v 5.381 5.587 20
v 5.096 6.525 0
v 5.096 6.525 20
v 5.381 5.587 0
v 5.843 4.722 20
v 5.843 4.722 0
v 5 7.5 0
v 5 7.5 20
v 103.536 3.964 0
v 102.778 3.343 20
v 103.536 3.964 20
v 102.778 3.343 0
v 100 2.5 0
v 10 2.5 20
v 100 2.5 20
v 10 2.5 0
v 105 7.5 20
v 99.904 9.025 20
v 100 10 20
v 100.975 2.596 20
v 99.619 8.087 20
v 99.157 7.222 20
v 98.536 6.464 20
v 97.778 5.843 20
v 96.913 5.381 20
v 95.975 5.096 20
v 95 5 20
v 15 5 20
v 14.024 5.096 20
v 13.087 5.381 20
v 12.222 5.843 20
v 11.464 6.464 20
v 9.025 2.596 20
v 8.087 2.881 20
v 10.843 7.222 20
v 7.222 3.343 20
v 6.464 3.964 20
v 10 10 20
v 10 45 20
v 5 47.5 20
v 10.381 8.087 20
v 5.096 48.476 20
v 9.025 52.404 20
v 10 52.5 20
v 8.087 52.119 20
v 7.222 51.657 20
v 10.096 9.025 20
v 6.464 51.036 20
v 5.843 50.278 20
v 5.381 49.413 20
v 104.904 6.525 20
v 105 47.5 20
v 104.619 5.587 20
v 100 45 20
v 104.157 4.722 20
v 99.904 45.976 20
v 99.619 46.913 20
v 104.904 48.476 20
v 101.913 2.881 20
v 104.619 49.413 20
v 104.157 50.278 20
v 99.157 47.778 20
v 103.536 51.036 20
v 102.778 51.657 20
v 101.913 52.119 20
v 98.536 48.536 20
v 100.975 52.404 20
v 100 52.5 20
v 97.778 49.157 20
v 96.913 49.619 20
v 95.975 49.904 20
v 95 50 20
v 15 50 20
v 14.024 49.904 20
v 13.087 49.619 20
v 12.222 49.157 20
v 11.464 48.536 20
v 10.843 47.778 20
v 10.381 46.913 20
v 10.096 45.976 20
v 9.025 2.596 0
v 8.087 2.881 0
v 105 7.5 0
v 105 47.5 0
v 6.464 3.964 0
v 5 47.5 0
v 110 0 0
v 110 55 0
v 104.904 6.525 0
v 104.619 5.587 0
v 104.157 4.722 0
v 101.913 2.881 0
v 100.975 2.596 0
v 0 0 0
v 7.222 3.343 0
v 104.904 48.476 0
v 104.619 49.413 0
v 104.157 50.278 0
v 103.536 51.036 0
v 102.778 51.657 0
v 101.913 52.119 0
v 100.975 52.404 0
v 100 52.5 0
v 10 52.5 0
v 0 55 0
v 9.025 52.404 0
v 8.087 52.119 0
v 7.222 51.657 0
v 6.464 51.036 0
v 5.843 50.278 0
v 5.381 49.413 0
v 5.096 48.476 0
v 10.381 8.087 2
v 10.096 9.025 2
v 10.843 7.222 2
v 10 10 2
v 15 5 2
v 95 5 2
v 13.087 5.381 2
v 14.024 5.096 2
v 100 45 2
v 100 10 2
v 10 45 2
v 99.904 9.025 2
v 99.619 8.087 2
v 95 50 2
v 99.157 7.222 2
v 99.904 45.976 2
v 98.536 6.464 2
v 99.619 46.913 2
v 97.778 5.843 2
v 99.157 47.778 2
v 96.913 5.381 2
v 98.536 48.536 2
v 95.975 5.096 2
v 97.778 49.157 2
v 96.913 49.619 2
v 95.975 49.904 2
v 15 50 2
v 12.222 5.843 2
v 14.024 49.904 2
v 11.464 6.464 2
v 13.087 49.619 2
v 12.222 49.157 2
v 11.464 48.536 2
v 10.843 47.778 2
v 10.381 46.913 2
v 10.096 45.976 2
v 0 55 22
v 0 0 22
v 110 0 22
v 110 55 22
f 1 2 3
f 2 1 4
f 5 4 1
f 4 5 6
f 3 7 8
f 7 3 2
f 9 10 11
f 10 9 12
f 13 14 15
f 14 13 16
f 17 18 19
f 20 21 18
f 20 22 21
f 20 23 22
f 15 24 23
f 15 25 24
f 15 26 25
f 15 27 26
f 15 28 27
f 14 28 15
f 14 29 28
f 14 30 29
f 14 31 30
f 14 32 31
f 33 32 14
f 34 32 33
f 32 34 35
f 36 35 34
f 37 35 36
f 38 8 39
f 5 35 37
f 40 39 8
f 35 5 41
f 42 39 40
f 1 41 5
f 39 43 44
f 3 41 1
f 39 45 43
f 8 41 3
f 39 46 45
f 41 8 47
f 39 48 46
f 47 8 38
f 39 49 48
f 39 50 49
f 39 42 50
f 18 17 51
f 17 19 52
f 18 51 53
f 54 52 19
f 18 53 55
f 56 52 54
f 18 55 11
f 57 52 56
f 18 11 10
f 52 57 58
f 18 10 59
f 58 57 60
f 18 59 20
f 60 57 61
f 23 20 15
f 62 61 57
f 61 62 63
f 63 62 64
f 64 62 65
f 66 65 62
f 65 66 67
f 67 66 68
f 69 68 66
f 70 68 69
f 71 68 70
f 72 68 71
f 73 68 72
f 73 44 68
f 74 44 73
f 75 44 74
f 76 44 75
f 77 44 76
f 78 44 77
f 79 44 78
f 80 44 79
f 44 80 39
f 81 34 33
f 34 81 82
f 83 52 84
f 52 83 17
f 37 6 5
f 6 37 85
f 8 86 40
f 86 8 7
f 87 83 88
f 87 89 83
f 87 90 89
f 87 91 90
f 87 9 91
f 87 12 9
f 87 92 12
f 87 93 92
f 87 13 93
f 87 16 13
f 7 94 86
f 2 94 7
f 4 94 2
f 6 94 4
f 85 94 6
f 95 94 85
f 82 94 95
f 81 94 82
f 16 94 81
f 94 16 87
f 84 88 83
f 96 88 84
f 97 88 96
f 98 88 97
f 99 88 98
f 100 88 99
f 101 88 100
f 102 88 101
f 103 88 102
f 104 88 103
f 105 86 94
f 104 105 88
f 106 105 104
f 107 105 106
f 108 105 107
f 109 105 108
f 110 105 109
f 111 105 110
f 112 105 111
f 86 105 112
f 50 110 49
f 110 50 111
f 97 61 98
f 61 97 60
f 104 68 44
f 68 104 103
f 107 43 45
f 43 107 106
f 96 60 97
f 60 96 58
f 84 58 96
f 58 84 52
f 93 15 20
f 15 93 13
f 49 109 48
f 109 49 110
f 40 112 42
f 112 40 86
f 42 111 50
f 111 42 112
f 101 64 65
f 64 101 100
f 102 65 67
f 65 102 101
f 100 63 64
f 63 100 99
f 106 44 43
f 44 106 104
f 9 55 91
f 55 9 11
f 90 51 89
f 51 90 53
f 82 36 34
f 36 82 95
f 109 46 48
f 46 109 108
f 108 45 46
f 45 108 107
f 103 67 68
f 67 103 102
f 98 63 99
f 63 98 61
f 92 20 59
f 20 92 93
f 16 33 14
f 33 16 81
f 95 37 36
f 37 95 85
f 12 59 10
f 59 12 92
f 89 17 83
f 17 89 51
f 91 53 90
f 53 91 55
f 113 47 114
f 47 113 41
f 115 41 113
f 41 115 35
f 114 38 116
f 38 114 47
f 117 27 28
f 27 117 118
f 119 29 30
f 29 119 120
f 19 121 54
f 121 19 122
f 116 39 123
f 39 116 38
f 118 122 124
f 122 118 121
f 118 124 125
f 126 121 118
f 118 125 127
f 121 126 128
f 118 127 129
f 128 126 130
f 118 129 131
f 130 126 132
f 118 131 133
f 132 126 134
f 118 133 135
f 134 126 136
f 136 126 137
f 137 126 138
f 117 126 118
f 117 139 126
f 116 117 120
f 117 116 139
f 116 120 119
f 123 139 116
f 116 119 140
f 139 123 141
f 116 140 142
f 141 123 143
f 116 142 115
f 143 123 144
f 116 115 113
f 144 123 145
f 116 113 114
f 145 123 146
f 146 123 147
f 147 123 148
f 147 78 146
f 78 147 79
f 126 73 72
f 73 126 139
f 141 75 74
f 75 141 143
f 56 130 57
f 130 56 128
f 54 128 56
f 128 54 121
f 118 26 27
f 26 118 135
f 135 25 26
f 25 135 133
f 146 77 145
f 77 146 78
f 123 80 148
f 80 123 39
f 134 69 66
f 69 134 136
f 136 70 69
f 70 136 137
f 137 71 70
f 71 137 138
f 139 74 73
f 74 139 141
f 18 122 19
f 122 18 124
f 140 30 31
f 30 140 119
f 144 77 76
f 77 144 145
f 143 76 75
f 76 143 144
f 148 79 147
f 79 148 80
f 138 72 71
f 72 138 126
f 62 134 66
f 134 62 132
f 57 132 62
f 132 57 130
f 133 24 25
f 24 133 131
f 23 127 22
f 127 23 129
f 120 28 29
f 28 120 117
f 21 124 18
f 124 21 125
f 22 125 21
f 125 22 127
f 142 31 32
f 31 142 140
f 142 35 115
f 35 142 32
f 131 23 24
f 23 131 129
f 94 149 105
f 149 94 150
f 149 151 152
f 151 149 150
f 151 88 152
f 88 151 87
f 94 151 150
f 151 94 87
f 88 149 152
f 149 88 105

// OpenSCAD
$fn = 32;

cornerRadius = 5;
outerSize = [100, 50, 20];
innerSize = outerSize / 10 * 9;

function CenteredTop(outerSize, innerSize) = [
    (outerSize[0] - innerSize[0]) / 2,
    (outerSize[1] - innerSize[1]) / 2,
    outerSize[2] / 10 * 1];

function CenteredBottom(outerSize, innerSize) = [
    (outerSize[0] - innerSize[0]) / 2,
    (outerSize[1] - innerSize[1]) / 2,
    0];

module RoundedCornerBox(size, cornerRadius)
{
    x1 =           cornerRadius;
    x2 = size[0] - cornerRadius;
    y1 =           cornerRadius;
    y2 = size[1] - cornerRadius;

    linear_extrude(size[2])
    hull()
    {
        translate([x1, y1]) circle(r=cornerRadius);
        translate([x2, y1]) circle(r=cornerRadius);
        translate([x1, y2]) circle(r=cornerRadius);
        translate([x2, y2]) circle(r=cornerRadius);
    }
}

module DropTray()
{
    offset = CenteredTop(outerSize, innerSize);

    difference()
    {
        RoundedCornerBox(outerSize, cornerRadius);

        translate(offset)
        RoundedCornerBox(innerSize, cornerRadius);
    }
}

module Mould()
{
    boxSize = outerSize * 1.1;
    offset = CenteredBottom(boxSize, outerSize);

    difference()
    {
        cube(boxSize);

        translate(offset)
        DropTray();
    }
}

//DropTray();
Mould();
